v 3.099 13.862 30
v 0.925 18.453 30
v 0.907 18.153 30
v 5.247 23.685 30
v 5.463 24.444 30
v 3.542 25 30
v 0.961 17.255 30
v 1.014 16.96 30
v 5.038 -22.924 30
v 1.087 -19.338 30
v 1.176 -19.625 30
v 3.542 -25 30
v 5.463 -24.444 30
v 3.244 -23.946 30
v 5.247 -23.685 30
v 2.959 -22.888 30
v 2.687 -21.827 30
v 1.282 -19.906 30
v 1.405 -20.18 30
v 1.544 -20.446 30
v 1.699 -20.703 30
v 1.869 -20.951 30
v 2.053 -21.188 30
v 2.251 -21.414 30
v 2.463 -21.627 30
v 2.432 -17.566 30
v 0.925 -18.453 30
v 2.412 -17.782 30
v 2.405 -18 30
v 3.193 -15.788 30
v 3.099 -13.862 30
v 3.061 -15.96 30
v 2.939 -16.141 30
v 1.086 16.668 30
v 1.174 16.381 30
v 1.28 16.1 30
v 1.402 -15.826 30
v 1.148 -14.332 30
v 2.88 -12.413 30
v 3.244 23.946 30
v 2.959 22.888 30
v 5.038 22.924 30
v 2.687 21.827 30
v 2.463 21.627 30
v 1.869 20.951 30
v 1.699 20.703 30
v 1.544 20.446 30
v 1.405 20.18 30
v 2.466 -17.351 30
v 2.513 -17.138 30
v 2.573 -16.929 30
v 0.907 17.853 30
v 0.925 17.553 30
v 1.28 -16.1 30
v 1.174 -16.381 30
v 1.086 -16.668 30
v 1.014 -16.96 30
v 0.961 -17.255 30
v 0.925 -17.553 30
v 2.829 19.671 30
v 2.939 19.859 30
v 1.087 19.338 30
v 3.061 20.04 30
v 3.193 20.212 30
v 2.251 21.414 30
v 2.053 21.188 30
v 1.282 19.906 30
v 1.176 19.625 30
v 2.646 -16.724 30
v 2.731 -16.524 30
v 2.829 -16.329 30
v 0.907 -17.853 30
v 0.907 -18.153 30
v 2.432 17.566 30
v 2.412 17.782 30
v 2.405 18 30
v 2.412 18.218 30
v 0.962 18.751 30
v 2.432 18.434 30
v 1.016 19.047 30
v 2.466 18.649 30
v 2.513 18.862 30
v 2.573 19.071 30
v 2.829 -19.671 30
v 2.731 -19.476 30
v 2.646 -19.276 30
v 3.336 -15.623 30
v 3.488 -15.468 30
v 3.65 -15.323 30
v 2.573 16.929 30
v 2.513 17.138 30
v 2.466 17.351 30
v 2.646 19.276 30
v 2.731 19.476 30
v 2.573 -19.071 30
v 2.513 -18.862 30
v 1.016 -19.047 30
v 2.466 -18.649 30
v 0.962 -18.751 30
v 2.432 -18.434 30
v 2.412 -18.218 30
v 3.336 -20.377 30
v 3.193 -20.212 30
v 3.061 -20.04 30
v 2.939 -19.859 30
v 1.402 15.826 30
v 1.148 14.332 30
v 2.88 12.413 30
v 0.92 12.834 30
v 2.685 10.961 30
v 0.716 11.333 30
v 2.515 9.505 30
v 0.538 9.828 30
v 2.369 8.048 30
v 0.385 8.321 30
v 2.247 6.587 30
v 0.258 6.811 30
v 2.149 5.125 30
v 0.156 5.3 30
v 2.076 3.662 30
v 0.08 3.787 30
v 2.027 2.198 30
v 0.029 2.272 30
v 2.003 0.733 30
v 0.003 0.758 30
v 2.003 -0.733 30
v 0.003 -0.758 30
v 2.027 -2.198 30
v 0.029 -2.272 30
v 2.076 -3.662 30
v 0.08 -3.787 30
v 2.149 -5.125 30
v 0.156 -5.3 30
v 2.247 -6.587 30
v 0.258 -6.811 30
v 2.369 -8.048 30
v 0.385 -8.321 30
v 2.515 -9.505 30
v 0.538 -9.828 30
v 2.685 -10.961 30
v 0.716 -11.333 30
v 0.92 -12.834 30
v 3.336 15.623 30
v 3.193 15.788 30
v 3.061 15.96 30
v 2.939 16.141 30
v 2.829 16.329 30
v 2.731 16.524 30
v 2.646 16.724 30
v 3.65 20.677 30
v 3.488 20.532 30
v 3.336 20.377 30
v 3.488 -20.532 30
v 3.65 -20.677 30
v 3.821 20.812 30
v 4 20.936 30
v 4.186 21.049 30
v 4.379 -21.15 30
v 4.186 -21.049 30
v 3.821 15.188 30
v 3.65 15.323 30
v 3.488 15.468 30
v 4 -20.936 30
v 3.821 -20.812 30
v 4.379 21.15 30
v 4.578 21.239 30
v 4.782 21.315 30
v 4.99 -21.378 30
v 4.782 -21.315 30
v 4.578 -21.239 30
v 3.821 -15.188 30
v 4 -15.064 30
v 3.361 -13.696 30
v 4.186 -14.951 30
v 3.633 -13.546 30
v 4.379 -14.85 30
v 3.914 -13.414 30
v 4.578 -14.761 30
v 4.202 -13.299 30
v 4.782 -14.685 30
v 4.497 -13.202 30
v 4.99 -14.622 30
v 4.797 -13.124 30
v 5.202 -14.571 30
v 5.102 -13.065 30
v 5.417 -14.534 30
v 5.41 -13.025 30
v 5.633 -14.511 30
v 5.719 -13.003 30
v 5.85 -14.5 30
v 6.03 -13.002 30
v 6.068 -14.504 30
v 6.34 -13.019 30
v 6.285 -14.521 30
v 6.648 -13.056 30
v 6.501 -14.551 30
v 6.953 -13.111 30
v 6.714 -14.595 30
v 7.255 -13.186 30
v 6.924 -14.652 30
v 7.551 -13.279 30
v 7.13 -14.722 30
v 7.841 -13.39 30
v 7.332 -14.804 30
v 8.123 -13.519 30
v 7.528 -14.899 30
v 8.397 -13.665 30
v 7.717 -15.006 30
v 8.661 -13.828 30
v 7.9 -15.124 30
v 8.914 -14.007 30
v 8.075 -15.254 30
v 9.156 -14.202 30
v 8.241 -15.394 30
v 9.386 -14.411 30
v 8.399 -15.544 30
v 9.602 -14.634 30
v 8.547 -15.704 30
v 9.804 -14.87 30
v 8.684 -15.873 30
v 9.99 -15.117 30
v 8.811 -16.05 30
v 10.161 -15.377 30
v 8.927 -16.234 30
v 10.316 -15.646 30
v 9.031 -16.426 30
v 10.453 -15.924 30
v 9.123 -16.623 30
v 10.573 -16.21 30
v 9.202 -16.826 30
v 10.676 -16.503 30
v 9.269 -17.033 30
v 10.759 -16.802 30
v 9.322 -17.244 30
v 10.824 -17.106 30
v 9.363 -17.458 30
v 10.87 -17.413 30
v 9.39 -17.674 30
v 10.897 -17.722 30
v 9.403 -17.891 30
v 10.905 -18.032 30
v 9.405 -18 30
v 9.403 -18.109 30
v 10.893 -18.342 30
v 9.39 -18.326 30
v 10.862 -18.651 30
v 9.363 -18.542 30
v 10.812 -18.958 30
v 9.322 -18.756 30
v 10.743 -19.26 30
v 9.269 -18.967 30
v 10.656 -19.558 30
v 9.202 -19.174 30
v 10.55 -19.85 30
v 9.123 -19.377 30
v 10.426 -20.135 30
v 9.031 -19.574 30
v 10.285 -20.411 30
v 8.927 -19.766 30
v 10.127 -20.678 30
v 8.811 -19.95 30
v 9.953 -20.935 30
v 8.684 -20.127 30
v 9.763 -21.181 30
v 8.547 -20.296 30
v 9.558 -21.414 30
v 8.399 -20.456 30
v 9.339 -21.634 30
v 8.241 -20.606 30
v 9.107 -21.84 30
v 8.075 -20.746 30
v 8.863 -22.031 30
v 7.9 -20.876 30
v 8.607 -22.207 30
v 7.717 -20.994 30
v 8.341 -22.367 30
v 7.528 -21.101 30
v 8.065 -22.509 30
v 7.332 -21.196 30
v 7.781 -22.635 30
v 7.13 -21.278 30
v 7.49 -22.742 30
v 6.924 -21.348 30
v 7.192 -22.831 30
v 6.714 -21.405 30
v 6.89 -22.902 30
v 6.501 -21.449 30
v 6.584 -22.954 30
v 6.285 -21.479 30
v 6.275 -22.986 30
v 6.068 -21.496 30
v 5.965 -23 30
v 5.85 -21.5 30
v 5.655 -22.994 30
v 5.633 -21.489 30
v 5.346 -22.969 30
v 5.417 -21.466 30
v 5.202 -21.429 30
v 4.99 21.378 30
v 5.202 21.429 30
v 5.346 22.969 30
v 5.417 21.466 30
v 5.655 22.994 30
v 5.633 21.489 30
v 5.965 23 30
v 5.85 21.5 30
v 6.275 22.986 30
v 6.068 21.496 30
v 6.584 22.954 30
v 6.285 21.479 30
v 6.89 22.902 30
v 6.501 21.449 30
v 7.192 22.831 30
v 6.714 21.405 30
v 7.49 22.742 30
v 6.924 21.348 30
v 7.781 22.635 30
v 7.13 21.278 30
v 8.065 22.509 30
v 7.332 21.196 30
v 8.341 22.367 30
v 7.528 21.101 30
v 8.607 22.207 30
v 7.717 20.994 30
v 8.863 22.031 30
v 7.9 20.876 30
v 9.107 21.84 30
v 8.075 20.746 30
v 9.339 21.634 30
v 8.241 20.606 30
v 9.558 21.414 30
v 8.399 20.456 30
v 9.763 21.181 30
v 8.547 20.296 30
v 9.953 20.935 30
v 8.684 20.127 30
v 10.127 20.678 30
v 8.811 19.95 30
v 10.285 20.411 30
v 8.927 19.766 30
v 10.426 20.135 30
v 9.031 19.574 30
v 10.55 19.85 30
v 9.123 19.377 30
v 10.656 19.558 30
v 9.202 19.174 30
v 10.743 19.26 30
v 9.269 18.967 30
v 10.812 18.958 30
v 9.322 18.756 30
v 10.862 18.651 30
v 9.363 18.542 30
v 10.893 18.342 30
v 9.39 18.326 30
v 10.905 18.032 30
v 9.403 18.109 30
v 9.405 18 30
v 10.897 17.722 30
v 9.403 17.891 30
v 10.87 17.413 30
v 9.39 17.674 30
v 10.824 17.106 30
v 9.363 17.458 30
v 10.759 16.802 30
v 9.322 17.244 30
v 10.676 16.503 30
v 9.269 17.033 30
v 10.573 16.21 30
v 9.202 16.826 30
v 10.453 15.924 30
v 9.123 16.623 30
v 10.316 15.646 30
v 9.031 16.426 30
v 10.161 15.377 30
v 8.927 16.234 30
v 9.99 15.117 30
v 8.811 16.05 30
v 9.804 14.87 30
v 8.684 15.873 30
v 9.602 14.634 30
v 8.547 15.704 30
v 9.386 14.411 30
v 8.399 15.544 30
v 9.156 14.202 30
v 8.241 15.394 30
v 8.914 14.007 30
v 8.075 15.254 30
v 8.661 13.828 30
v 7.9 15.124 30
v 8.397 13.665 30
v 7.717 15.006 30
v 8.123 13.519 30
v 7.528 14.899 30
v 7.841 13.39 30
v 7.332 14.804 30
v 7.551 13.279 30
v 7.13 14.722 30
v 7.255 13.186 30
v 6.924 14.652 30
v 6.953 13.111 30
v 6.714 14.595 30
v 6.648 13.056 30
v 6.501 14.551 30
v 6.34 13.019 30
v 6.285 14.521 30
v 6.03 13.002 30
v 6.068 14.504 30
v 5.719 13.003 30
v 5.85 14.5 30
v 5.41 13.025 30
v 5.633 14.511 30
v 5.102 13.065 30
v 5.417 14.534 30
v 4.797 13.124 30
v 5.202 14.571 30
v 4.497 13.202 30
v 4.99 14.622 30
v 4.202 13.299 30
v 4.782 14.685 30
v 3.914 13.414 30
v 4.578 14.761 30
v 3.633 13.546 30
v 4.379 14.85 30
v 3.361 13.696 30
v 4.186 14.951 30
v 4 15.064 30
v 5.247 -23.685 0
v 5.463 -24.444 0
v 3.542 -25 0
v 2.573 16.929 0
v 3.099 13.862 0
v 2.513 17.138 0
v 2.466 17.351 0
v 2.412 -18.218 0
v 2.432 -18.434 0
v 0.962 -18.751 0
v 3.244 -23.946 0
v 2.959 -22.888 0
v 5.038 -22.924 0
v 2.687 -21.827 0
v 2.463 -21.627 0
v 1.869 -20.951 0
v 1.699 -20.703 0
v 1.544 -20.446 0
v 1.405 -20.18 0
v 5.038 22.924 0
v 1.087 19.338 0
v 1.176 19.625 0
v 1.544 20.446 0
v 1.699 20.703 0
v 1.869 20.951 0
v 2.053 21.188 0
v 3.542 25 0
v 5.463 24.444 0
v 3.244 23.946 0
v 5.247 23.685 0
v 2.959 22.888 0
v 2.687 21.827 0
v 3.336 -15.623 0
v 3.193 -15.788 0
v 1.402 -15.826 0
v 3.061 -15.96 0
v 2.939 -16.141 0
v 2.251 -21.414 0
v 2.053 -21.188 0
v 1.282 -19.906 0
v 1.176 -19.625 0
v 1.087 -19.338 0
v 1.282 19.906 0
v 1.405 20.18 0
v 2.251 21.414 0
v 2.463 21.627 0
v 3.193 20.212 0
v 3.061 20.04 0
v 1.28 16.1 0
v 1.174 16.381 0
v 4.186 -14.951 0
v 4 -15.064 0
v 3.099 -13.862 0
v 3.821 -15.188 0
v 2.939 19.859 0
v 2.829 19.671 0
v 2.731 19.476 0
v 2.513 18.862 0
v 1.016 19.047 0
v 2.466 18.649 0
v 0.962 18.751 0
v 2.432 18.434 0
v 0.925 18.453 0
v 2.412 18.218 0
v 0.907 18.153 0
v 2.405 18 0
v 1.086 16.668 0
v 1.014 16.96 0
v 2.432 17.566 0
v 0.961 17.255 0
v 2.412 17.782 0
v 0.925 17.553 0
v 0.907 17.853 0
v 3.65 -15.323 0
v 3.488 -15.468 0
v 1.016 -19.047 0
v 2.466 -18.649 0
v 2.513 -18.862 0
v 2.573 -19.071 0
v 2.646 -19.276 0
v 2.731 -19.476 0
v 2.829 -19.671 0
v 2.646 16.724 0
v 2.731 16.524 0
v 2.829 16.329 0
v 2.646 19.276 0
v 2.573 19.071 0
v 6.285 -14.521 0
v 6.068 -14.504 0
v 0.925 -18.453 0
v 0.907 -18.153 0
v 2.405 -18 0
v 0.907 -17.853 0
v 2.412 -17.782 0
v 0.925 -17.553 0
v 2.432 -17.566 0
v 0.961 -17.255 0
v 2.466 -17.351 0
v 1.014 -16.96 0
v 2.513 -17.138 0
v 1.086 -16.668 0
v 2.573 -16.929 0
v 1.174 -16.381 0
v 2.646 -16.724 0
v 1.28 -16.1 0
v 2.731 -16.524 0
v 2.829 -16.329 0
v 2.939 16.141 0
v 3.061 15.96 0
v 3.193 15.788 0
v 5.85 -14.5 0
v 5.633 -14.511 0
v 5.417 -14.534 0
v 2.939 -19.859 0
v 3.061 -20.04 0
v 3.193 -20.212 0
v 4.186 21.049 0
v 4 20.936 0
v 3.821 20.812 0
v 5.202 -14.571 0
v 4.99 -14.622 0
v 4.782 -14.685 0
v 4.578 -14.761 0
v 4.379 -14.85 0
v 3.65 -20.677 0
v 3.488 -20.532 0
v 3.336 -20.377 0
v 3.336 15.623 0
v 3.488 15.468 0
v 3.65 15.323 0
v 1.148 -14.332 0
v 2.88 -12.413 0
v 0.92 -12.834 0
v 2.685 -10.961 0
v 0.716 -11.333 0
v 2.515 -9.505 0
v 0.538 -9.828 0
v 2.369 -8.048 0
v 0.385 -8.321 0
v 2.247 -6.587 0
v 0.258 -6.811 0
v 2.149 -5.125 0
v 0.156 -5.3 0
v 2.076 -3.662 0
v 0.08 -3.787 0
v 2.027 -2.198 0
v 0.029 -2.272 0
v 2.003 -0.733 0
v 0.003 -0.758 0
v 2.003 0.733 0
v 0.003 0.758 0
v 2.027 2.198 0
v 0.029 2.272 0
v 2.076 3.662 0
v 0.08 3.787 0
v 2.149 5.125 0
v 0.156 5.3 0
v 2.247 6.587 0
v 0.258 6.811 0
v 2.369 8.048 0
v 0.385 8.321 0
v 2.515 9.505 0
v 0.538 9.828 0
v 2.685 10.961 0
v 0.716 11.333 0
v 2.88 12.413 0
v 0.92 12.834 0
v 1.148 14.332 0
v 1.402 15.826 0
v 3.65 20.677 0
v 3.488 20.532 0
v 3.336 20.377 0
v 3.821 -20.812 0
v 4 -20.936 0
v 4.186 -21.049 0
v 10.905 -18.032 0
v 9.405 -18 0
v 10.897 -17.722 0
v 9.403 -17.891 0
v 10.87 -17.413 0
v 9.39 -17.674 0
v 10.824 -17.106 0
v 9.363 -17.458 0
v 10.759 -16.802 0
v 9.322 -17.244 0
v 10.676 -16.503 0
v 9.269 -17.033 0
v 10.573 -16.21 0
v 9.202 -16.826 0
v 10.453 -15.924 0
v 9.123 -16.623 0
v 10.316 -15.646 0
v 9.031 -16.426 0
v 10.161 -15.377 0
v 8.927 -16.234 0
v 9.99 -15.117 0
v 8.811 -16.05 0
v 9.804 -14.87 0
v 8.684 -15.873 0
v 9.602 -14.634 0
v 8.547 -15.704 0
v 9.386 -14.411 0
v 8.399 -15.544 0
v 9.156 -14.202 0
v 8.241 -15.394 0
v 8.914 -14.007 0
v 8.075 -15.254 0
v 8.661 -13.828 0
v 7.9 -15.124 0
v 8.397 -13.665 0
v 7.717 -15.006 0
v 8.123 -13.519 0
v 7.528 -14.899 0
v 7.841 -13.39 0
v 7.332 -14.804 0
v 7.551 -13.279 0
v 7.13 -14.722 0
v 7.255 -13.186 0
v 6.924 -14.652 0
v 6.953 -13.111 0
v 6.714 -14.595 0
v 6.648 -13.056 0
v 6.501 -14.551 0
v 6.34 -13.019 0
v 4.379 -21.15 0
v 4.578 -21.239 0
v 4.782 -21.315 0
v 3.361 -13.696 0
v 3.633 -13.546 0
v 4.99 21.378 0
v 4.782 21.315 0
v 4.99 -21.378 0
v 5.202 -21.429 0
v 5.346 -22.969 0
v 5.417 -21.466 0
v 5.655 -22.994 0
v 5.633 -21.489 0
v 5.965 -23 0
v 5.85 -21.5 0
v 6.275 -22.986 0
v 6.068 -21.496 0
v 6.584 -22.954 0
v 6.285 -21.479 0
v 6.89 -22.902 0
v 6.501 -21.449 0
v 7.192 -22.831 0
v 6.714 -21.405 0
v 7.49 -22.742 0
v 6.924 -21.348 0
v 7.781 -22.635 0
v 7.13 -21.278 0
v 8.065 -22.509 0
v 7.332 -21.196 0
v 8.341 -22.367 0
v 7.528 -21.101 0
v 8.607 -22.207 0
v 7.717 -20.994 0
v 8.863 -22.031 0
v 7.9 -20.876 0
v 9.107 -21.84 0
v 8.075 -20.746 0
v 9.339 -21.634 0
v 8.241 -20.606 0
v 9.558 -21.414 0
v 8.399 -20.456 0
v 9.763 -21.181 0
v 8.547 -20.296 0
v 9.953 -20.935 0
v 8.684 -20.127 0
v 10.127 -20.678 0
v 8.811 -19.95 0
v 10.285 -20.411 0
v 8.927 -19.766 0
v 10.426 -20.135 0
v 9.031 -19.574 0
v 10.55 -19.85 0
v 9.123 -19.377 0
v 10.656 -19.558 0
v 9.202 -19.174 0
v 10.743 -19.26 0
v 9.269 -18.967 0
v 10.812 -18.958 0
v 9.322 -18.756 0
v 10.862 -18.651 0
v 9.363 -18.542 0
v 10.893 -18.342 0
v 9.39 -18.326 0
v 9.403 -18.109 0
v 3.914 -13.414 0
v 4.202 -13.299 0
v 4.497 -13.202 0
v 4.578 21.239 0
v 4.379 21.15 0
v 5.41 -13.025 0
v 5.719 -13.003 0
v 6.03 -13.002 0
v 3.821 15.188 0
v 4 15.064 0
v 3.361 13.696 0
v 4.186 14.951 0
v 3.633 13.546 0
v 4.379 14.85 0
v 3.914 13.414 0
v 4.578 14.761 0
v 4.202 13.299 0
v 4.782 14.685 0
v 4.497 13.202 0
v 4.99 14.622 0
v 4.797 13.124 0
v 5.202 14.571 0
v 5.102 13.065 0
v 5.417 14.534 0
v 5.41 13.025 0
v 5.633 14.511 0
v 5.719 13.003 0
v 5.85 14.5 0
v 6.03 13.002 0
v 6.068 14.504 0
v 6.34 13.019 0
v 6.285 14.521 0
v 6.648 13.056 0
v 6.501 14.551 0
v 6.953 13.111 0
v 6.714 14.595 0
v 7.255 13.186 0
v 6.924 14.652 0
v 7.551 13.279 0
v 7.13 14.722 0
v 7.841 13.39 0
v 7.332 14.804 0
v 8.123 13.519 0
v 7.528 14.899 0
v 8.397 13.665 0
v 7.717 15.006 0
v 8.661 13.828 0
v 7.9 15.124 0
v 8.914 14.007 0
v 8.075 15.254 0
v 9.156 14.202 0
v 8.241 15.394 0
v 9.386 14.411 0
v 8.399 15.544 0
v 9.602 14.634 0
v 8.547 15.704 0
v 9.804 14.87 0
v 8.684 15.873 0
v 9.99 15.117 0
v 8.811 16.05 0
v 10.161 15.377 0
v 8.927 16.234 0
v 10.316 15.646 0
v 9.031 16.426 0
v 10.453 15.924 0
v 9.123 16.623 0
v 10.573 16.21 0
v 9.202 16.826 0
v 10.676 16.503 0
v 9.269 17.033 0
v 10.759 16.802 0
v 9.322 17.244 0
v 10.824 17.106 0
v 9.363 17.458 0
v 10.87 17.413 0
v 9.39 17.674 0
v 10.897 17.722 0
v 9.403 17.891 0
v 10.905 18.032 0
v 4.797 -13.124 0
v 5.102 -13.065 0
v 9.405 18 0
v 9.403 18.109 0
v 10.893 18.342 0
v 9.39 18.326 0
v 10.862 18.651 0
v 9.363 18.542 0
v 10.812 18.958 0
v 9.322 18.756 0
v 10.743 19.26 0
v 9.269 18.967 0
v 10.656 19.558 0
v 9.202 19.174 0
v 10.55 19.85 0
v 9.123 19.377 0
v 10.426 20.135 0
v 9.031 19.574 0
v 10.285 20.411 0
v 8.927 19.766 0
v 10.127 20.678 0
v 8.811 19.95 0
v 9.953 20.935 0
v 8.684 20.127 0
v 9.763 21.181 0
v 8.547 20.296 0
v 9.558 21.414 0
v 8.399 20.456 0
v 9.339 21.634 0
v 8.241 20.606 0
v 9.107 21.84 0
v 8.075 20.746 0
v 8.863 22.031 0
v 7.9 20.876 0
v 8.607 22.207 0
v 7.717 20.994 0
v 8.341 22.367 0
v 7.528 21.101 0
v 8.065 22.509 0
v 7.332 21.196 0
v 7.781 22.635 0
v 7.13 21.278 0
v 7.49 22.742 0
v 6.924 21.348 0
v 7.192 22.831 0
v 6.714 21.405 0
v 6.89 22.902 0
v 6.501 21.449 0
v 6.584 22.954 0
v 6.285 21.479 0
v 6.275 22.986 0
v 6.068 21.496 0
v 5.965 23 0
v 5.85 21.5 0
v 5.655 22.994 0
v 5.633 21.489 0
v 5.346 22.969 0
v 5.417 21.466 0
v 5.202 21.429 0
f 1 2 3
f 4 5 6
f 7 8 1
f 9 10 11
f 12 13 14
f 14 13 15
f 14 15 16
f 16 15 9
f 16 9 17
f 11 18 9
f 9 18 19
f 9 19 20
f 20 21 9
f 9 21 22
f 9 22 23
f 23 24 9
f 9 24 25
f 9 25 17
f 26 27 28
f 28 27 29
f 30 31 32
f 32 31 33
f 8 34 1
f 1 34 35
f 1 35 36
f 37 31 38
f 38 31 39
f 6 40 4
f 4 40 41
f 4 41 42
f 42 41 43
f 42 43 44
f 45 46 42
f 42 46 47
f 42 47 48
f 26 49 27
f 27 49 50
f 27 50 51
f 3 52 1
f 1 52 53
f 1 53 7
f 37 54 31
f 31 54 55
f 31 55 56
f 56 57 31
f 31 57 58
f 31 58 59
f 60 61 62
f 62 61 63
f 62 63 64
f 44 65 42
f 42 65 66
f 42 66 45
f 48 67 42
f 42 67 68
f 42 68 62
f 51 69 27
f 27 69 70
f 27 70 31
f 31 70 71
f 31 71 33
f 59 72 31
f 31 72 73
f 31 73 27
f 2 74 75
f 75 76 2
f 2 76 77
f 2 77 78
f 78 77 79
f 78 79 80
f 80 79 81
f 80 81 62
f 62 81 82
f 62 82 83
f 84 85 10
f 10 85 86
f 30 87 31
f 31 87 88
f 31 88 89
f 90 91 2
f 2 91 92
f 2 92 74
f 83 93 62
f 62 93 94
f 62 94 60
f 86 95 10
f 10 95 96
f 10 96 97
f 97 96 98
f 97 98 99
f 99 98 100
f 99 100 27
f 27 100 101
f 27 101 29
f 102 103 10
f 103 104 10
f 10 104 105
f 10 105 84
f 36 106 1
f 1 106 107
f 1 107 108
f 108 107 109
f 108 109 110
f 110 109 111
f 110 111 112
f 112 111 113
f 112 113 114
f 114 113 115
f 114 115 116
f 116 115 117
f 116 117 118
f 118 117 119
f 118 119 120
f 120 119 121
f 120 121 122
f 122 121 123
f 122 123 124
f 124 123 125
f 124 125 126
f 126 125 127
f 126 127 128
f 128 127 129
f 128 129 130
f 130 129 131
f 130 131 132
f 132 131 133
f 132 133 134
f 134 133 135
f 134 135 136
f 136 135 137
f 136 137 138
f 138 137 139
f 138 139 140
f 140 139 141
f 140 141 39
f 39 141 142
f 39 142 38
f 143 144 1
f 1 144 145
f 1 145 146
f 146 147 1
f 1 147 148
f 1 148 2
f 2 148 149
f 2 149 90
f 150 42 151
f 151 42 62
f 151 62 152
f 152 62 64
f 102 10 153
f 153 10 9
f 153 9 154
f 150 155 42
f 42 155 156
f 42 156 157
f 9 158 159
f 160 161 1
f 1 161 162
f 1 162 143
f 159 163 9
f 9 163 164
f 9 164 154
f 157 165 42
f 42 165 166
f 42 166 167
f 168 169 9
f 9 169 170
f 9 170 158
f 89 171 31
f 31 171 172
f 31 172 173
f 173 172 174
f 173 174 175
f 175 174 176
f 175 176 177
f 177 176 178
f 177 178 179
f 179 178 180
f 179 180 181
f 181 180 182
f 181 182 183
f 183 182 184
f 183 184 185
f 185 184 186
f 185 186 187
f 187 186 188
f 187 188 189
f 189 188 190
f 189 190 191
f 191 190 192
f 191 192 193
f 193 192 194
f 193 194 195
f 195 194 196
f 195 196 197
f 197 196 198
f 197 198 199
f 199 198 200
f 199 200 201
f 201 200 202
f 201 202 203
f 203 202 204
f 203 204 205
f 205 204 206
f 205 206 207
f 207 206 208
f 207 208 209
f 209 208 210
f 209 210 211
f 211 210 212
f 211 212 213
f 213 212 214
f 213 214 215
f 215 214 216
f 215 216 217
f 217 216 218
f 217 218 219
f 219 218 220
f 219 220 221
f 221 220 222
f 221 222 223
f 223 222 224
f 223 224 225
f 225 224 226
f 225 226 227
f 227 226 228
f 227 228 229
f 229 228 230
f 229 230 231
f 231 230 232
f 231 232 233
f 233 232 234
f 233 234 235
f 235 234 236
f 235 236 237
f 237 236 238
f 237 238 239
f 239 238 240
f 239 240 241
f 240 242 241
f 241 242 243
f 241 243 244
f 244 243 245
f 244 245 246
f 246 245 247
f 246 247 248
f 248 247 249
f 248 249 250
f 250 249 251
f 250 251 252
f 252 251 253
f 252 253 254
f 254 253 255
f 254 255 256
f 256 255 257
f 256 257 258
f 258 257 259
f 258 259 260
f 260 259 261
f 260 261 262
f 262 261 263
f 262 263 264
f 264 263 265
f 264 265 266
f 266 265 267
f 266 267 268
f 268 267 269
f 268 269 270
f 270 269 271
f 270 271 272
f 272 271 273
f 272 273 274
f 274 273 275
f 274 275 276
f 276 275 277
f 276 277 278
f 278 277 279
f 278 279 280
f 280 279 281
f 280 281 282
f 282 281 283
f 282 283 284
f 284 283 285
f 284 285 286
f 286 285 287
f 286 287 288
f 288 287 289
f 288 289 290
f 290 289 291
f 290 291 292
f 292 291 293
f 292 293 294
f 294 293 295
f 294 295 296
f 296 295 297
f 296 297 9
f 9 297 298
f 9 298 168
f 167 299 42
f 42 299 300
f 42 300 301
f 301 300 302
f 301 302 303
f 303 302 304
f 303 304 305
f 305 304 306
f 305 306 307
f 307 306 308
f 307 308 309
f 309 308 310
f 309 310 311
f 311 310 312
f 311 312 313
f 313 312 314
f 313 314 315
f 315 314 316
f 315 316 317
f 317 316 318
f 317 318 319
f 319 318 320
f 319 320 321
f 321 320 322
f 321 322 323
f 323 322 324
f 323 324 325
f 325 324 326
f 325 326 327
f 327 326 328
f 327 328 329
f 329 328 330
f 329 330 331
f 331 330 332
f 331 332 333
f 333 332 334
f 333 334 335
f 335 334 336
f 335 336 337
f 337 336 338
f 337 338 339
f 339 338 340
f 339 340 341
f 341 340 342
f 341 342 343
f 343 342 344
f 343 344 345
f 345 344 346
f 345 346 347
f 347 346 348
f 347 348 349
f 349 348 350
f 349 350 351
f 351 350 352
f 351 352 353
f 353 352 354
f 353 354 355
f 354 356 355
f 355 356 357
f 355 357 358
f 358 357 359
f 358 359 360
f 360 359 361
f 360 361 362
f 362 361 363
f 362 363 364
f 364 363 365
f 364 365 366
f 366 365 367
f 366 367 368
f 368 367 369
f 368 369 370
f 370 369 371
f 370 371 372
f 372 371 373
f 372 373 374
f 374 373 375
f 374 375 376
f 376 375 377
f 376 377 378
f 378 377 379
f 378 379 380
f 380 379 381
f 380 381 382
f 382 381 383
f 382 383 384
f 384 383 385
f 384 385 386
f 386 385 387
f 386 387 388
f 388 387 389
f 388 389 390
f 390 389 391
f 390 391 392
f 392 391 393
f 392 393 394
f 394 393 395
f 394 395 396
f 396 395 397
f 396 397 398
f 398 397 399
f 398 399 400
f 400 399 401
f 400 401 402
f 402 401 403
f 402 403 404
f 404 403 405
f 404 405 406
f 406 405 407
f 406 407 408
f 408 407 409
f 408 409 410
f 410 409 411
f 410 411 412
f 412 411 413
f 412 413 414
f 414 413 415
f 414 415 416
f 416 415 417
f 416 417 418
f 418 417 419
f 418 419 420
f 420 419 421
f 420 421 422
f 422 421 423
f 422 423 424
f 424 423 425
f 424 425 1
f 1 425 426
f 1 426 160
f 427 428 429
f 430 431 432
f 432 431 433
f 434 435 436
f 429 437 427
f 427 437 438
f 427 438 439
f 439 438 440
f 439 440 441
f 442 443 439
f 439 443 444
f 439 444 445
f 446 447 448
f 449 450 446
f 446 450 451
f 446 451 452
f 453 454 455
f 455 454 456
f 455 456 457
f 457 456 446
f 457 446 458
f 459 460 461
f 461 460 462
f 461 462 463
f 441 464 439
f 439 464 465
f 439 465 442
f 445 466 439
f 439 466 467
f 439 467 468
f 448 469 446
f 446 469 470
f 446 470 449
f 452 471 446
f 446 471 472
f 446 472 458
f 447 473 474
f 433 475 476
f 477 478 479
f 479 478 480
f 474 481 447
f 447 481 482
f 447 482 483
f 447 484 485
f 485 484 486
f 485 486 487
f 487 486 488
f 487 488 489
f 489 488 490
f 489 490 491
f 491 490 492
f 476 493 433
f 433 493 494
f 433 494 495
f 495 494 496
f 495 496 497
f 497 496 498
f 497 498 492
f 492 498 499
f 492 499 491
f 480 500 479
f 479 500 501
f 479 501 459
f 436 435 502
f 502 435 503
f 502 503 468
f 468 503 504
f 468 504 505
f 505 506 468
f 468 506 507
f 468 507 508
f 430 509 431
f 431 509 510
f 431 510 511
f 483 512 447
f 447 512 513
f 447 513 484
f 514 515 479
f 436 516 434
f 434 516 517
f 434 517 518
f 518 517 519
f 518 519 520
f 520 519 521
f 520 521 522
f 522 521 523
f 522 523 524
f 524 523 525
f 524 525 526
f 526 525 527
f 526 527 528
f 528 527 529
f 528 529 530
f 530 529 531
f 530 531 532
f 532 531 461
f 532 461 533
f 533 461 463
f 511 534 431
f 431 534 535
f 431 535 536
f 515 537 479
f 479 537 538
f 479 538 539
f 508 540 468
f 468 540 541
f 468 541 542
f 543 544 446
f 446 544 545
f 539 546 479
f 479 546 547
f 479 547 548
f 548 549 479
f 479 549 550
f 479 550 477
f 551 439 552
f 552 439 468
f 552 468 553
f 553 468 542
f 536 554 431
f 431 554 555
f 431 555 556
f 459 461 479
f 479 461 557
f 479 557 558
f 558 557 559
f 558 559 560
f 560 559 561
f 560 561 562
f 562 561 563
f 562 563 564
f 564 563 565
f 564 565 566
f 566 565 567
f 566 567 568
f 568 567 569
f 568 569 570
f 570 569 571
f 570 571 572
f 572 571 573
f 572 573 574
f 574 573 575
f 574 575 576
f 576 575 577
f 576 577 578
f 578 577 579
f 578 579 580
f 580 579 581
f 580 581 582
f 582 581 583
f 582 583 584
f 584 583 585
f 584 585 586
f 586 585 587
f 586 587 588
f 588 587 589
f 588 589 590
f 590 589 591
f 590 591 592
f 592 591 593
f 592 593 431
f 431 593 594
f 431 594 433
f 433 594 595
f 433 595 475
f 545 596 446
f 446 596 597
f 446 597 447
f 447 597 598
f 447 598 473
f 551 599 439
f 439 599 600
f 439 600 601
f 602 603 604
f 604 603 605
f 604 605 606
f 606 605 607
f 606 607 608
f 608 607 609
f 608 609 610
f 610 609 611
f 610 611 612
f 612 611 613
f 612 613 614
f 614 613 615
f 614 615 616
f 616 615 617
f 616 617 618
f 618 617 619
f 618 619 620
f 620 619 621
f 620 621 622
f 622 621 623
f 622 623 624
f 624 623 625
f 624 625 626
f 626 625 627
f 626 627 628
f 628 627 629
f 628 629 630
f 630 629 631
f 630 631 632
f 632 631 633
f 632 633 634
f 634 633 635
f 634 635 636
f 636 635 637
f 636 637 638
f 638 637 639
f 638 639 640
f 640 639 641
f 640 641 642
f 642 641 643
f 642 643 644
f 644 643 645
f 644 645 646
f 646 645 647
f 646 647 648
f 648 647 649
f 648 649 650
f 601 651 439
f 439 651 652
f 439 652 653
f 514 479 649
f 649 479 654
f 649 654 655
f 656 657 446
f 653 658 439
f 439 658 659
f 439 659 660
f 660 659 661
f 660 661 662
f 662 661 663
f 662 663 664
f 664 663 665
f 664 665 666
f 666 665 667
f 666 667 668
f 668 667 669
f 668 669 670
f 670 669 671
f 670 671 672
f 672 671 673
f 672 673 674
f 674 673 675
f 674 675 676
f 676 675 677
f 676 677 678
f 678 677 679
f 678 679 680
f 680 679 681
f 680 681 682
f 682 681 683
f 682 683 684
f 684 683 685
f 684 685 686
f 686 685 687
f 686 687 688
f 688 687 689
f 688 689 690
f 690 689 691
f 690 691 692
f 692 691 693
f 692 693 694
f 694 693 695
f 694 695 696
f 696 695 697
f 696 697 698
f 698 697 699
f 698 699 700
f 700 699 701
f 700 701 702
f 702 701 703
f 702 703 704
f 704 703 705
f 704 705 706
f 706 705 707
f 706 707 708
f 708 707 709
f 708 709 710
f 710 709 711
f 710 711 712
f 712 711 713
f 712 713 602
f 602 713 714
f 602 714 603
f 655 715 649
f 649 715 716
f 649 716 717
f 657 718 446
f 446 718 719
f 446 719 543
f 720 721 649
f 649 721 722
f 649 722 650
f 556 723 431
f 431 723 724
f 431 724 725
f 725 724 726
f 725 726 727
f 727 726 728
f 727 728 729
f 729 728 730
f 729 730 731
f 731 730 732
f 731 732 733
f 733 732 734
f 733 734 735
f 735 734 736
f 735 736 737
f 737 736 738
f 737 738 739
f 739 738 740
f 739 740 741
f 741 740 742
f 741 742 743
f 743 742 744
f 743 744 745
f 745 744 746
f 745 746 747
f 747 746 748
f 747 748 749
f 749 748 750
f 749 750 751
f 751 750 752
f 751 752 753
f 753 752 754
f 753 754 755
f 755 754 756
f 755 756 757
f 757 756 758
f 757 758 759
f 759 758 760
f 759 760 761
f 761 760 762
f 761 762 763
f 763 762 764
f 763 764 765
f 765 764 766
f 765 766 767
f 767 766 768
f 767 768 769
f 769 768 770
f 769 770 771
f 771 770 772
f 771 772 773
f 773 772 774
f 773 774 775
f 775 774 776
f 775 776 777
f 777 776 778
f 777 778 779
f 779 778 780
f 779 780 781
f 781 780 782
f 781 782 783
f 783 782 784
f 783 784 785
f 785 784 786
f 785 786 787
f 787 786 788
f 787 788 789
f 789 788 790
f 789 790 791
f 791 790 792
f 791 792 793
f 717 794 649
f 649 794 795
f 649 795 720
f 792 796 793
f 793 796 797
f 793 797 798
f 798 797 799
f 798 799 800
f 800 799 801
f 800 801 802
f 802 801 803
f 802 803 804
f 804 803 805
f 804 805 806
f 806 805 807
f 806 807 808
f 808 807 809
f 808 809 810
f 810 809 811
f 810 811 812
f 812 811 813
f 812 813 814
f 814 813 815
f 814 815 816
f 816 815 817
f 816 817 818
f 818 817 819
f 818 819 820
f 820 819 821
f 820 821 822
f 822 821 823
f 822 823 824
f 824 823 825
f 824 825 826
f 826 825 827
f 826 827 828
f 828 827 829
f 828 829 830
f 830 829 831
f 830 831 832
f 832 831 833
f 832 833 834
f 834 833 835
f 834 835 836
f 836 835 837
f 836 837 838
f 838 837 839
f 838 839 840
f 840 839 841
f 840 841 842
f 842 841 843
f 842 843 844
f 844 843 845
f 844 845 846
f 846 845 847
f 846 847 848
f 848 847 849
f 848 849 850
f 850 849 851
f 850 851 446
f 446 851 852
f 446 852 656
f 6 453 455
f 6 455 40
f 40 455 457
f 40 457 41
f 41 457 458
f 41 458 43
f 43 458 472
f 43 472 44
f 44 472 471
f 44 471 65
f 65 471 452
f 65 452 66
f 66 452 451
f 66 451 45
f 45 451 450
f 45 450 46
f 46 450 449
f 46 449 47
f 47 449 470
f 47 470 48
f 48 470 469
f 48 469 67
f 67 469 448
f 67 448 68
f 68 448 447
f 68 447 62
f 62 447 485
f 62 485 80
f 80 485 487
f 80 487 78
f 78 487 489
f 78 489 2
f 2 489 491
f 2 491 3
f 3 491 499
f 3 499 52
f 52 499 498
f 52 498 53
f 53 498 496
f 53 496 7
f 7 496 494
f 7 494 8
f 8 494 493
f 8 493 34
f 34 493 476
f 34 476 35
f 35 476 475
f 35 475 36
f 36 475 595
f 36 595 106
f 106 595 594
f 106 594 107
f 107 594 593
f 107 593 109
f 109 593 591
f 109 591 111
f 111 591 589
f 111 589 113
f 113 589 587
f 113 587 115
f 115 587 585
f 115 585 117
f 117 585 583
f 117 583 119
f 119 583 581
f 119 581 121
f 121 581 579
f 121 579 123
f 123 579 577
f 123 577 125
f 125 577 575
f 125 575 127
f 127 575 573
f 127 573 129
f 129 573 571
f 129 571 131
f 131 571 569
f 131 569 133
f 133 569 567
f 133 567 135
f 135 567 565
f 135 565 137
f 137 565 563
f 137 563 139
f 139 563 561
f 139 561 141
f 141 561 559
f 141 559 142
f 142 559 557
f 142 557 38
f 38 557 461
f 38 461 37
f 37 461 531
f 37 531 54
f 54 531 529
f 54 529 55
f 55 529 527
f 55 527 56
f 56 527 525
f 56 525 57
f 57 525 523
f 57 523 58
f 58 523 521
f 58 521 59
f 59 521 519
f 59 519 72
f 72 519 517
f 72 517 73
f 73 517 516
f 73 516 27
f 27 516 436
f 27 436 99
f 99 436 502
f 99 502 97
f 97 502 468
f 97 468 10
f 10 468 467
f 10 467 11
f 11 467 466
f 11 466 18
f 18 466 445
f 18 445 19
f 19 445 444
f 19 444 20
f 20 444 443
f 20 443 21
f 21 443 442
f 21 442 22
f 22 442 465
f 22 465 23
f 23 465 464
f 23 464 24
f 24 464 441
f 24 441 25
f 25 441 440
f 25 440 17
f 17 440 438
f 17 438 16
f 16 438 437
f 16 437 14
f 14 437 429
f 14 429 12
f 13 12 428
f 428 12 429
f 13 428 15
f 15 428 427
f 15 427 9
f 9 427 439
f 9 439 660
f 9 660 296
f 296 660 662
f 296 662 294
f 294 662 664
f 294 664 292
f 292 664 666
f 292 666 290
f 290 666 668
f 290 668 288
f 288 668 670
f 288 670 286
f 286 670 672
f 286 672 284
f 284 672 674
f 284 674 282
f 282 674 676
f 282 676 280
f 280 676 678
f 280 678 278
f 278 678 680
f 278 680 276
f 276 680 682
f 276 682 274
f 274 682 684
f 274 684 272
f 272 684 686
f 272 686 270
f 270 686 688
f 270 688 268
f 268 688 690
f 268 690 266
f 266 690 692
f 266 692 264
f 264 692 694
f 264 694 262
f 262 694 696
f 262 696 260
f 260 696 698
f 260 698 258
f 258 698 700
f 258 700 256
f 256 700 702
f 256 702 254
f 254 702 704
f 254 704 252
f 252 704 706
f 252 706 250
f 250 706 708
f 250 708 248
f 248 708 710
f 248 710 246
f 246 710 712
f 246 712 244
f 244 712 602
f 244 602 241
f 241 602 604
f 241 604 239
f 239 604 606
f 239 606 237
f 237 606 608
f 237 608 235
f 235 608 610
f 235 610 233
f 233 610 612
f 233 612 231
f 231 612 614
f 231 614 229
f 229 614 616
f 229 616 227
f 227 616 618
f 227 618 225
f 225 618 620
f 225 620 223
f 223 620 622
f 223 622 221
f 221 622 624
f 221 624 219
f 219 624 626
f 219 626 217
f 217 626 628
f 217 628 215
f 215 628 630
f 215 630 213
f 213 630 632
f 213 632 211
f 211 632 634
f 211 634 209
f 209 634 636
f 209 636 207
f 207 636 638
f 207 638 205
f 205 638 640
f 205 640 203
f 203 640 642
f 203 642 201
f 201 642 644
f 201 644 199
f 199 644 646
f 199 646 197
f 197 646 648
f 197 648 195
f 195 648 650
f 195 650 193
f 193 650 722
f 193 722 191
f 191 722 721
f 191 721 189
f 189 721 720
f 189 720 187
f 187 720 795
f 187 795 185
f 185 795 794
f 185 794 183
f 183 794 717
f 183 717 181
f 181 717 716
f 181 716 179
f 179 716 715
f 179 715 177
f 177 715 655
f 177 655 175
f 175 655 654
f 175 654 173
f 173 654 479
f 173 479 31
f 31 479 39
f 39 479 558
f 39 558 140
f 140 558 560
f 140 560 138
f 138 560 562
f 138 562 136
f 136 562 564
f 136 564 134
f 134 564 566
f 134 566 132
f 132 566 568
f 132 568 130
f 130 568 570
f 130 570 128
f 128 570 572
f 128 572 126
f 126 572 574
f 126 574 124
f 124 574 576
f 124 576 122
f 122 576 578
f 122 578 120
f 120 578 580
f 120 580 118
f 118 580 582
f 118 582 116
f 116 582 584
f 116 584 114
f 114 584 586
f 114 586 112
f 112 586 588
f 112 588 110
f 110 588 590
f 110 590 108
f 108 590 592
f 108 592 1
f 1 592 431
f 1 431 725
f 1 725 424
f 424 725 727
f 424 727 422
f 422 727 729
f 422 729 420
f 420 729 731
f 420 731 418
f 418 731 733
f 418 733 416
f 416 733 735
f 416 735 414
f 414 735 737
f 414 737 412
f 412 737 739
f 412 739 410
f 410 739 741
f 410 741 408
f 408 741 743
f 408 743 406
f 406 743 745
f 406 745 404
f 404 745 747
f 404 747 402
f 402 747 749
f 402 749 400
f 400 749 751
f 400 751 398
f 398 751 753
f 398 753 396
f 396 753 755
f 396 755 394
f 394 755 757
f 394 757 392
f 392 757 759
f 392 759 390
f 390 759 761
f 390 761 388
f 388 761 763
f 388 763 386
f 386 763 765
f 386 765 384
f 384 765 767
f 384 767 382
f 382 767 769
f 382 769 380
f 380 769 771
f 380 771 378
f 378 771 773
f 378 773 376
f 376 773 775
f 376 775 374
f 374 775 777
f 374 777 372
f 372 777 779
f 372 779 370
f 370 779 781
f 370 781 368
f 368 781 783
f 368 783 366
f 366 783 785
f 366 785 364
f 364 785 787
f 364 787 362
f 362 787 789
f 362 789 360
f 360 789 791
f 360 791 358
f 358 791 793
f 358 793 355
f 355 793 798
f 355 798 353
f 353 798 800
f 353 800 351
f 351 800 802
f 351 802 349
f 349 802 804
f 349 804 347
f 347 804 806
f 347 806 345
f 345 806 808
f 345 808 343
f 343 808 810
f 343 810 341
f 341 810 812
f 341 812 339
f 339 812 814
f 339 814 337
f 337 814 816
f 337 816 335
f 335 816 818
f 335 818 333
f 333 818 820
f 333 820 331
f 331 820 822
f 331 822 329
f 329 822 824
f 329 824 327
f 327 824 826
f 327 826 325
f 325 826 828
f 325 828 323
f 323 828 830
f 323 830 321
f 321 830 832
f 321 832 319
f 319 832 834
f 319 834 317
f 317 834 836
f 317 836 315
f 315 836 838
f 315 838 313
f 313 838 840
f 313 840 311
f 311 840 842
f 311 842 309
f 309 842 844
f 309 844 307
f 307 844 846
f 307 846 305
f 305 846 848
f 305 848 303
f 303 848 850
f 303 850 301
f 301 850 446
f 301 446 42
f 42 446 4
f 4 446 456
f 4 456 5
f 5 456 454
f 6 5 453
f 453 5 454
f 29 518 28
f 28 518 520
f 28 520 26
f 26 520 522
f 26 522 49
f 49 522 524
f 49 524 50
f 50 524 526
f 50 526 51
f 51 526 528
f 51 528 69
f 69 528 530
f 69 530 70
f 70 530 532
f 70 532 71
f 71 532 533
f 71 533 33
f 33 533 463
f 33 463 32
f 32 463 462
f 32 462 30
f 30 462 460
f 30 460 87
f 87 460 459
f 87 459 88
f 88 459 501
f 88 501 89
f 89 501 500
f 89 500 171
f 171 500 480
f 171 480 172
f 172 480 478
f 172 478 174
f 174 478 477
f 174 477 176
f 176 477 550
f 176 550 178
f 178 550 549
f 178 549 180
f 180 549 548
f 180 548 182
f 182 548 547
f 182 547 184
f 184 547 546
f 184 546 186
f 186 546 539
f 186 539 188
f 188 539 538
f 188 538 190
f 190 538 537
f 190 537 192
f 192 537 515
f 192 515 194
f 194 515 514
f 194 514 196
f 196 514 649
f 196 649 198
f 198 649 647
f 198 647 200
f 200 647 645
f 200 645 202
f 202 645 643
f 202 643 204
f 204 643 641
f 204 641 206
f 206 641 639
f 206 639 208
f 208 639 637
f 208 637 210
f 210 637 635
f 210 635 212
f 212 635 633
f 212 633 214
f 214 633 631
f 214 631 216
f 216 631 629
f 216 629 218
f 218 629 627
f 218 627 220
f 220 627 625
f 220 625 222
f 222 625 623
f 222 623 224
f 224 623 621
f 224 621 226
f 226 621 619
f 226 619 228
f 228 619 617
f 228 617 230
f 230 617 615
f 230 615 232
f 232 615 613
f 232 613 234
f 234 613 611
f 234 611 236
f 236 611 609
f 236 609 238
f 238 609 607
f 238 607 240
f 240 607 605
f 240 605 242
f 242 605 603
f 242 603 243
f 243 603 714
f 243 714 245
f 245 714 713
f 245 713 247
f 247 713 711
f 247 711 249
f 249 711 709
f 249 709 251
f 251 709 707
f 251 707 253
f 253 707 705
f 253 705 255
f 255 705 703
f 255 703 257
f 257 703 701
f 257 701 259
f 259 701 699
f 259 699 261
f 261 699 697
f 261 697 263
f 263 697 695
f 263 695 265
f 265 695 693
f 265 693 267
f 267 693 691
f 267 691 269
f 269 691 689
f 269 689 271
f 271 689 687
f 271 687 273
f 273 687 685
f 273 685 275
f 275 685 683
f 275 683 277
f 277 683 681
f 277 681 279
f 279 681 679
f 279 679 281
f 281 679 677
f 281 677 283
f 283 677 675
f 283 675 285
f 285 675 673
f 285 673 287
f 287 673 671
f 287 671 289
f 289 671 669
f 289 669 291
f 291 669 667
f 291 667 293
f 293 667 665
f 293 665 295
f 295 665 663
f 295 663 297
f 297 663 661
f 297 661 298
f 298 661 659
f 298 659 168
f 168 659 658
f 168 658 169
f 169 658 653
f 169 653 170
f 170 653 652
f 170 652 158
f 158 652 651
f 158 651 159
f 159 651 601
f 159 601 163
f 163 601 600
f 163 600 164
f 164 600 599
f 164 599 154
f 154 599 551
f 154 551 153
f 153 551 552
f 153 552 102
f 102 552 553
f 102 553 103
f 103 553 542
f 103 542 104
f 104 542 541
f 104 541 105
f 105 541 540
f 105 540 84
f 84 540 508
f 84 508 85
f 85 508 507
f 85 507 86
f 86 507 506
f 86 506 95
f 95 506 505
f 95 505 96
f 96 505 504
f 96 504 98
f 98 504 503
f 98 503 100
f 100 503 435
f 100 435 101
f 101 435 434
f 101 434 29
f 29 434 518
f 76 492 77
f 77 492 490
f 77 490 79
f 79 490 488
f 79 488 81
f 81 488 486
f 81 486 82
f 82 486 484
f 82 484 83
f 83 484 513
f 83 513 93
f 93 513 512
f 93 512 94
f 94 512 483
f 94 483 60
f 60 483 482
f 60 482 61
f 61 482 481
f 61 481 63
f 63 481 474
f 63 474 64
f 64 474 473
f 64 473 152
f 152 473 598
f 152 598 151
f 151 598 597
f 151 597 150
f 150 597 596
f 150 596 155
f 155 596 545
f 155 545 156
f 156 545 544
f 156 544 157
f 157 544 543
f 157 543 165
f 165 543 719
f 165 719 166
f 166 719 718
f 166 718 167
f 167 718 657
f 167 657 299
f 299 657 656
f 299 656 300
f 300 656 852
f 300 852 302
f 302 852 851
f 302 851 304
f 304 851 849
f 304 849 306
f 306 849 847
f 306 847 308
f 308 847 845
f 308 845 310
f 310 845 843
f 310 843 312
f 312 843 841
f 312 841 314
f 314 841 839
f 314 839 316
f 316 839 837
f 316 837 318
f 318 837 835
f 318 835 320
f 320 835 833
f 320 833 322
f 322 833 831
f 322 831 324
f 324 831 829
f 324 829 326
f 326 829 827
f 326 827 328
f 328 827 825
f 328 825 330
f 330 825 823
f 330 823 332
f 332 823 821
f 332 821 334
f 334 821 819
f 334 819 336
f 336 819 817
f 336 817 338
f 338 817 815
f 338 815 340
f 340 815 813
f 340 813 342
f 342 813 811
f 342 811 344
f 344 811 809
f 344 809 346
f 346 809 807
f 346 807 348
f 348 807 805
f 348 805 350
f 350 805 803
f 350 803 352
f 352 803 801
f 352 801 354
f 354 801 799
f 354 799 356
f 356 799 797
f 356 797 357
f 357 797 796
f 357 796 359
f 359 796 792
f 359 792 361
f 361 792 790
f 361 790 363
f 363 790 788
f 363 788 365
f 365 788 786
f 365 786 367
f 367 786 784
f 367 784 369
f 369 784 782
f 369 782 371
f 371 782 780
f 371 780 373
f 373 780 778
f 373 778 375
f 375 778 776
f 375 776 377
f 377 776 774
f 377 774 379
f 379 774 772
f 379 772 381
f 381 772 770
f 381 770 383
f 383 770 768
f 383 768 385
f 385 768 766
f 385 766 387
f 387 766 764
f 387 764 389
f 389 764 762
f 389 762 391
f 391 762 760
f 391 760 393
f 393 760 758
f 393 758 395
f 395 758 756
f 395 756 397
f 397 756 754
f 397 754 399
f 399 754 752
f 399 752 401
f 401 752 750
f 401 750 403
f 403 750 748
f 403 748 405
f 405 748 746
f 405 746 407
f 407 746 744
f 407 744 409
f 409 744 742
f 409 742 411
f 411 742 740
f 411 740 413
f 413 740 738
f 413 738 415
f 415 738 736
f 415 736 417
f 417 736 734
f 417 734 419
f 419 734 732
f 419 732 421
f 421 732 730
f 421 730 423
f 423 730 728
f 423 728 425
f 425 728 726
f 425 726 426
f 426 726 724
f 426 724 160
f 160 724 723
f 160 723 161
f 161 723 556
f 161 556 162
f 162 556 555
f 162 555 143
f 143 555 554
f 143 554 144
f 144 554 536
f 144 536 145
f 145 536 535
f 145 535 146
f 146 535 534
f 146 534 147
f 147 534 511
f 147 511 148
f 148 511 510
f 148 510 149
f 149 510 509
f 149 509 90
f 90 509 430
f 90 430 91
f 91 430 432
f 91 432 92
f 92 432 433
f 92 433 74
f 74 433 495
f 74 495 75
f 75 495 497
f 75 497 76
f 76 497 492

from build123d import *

# Parameters (mm, degrees)
SKETCH1_R           = 3.5
BOSS_EXTRUDE1_DEPTH = 30


with BuildPart() as part:
    # Sketch1 → Boss-Extrude1 (new body)
    with BuildSketch(Plane.XY):
        with BuildLine():
            Line((3.541917671, 25), (5.463208389, 24.444444444))
            ThreePointArc((5.463208389, 24.444444444), (5.24739546, 23.685354625), (5.038398555, 22.924359969))
            ThreePointArc((5.038398555, 22.924359969), (10.794070727, 16.953488372), (3.098606761, 13.861740626))
            ThreePointArc((3.098606761, 13.861740626), (2, 0), (3.098606761, -13.861740626))
            ThreePointArc((3.098606761, -13.861740626), (10.794070727, -16.953488372), (5.038398555, -22.924359969))
            ThreePointArc((5.038398555, -22.924359969), (5.24739546, -23.685354625), (5.463208389, -24.444444444))
            Line((5.463208389, -24.444444444), (3.541917671, -25))
            ThreePointArc((3.541917671, -25), (3.099888289, -23.417313778), (2.686828675, -21.826820958))
            ThreePointArc((2.686828675, -21.826820958), (1.01556094, -19.046511628), (1.402328405, -15.825693915))
            ThreePointArc((1.402328405, -15.825693915), (0, 0), (1.402328405, 15.825693915))
            ThreePointArc((1.402328405, 15.825693915), (1.01556094, 19.046511628), (2.686828675, 21.826820958))
            ThreePointArc((2.686828675, 21.826820958), (3.099888289, 23.417313778), (3.541917671, 25))
        make_face()
        with Locations((5.904815833, 18)):
            Circle(SKETCH1_R, mode=Mode.SUBTRACT)
        with Locations((5.904815833, -18)):
            Circle(SKETCH1_R, mode=Mode.SUBTRACT)
    extrude(amount=BOSS_EXTRUDE1_DEPTH)


solid = part.part
